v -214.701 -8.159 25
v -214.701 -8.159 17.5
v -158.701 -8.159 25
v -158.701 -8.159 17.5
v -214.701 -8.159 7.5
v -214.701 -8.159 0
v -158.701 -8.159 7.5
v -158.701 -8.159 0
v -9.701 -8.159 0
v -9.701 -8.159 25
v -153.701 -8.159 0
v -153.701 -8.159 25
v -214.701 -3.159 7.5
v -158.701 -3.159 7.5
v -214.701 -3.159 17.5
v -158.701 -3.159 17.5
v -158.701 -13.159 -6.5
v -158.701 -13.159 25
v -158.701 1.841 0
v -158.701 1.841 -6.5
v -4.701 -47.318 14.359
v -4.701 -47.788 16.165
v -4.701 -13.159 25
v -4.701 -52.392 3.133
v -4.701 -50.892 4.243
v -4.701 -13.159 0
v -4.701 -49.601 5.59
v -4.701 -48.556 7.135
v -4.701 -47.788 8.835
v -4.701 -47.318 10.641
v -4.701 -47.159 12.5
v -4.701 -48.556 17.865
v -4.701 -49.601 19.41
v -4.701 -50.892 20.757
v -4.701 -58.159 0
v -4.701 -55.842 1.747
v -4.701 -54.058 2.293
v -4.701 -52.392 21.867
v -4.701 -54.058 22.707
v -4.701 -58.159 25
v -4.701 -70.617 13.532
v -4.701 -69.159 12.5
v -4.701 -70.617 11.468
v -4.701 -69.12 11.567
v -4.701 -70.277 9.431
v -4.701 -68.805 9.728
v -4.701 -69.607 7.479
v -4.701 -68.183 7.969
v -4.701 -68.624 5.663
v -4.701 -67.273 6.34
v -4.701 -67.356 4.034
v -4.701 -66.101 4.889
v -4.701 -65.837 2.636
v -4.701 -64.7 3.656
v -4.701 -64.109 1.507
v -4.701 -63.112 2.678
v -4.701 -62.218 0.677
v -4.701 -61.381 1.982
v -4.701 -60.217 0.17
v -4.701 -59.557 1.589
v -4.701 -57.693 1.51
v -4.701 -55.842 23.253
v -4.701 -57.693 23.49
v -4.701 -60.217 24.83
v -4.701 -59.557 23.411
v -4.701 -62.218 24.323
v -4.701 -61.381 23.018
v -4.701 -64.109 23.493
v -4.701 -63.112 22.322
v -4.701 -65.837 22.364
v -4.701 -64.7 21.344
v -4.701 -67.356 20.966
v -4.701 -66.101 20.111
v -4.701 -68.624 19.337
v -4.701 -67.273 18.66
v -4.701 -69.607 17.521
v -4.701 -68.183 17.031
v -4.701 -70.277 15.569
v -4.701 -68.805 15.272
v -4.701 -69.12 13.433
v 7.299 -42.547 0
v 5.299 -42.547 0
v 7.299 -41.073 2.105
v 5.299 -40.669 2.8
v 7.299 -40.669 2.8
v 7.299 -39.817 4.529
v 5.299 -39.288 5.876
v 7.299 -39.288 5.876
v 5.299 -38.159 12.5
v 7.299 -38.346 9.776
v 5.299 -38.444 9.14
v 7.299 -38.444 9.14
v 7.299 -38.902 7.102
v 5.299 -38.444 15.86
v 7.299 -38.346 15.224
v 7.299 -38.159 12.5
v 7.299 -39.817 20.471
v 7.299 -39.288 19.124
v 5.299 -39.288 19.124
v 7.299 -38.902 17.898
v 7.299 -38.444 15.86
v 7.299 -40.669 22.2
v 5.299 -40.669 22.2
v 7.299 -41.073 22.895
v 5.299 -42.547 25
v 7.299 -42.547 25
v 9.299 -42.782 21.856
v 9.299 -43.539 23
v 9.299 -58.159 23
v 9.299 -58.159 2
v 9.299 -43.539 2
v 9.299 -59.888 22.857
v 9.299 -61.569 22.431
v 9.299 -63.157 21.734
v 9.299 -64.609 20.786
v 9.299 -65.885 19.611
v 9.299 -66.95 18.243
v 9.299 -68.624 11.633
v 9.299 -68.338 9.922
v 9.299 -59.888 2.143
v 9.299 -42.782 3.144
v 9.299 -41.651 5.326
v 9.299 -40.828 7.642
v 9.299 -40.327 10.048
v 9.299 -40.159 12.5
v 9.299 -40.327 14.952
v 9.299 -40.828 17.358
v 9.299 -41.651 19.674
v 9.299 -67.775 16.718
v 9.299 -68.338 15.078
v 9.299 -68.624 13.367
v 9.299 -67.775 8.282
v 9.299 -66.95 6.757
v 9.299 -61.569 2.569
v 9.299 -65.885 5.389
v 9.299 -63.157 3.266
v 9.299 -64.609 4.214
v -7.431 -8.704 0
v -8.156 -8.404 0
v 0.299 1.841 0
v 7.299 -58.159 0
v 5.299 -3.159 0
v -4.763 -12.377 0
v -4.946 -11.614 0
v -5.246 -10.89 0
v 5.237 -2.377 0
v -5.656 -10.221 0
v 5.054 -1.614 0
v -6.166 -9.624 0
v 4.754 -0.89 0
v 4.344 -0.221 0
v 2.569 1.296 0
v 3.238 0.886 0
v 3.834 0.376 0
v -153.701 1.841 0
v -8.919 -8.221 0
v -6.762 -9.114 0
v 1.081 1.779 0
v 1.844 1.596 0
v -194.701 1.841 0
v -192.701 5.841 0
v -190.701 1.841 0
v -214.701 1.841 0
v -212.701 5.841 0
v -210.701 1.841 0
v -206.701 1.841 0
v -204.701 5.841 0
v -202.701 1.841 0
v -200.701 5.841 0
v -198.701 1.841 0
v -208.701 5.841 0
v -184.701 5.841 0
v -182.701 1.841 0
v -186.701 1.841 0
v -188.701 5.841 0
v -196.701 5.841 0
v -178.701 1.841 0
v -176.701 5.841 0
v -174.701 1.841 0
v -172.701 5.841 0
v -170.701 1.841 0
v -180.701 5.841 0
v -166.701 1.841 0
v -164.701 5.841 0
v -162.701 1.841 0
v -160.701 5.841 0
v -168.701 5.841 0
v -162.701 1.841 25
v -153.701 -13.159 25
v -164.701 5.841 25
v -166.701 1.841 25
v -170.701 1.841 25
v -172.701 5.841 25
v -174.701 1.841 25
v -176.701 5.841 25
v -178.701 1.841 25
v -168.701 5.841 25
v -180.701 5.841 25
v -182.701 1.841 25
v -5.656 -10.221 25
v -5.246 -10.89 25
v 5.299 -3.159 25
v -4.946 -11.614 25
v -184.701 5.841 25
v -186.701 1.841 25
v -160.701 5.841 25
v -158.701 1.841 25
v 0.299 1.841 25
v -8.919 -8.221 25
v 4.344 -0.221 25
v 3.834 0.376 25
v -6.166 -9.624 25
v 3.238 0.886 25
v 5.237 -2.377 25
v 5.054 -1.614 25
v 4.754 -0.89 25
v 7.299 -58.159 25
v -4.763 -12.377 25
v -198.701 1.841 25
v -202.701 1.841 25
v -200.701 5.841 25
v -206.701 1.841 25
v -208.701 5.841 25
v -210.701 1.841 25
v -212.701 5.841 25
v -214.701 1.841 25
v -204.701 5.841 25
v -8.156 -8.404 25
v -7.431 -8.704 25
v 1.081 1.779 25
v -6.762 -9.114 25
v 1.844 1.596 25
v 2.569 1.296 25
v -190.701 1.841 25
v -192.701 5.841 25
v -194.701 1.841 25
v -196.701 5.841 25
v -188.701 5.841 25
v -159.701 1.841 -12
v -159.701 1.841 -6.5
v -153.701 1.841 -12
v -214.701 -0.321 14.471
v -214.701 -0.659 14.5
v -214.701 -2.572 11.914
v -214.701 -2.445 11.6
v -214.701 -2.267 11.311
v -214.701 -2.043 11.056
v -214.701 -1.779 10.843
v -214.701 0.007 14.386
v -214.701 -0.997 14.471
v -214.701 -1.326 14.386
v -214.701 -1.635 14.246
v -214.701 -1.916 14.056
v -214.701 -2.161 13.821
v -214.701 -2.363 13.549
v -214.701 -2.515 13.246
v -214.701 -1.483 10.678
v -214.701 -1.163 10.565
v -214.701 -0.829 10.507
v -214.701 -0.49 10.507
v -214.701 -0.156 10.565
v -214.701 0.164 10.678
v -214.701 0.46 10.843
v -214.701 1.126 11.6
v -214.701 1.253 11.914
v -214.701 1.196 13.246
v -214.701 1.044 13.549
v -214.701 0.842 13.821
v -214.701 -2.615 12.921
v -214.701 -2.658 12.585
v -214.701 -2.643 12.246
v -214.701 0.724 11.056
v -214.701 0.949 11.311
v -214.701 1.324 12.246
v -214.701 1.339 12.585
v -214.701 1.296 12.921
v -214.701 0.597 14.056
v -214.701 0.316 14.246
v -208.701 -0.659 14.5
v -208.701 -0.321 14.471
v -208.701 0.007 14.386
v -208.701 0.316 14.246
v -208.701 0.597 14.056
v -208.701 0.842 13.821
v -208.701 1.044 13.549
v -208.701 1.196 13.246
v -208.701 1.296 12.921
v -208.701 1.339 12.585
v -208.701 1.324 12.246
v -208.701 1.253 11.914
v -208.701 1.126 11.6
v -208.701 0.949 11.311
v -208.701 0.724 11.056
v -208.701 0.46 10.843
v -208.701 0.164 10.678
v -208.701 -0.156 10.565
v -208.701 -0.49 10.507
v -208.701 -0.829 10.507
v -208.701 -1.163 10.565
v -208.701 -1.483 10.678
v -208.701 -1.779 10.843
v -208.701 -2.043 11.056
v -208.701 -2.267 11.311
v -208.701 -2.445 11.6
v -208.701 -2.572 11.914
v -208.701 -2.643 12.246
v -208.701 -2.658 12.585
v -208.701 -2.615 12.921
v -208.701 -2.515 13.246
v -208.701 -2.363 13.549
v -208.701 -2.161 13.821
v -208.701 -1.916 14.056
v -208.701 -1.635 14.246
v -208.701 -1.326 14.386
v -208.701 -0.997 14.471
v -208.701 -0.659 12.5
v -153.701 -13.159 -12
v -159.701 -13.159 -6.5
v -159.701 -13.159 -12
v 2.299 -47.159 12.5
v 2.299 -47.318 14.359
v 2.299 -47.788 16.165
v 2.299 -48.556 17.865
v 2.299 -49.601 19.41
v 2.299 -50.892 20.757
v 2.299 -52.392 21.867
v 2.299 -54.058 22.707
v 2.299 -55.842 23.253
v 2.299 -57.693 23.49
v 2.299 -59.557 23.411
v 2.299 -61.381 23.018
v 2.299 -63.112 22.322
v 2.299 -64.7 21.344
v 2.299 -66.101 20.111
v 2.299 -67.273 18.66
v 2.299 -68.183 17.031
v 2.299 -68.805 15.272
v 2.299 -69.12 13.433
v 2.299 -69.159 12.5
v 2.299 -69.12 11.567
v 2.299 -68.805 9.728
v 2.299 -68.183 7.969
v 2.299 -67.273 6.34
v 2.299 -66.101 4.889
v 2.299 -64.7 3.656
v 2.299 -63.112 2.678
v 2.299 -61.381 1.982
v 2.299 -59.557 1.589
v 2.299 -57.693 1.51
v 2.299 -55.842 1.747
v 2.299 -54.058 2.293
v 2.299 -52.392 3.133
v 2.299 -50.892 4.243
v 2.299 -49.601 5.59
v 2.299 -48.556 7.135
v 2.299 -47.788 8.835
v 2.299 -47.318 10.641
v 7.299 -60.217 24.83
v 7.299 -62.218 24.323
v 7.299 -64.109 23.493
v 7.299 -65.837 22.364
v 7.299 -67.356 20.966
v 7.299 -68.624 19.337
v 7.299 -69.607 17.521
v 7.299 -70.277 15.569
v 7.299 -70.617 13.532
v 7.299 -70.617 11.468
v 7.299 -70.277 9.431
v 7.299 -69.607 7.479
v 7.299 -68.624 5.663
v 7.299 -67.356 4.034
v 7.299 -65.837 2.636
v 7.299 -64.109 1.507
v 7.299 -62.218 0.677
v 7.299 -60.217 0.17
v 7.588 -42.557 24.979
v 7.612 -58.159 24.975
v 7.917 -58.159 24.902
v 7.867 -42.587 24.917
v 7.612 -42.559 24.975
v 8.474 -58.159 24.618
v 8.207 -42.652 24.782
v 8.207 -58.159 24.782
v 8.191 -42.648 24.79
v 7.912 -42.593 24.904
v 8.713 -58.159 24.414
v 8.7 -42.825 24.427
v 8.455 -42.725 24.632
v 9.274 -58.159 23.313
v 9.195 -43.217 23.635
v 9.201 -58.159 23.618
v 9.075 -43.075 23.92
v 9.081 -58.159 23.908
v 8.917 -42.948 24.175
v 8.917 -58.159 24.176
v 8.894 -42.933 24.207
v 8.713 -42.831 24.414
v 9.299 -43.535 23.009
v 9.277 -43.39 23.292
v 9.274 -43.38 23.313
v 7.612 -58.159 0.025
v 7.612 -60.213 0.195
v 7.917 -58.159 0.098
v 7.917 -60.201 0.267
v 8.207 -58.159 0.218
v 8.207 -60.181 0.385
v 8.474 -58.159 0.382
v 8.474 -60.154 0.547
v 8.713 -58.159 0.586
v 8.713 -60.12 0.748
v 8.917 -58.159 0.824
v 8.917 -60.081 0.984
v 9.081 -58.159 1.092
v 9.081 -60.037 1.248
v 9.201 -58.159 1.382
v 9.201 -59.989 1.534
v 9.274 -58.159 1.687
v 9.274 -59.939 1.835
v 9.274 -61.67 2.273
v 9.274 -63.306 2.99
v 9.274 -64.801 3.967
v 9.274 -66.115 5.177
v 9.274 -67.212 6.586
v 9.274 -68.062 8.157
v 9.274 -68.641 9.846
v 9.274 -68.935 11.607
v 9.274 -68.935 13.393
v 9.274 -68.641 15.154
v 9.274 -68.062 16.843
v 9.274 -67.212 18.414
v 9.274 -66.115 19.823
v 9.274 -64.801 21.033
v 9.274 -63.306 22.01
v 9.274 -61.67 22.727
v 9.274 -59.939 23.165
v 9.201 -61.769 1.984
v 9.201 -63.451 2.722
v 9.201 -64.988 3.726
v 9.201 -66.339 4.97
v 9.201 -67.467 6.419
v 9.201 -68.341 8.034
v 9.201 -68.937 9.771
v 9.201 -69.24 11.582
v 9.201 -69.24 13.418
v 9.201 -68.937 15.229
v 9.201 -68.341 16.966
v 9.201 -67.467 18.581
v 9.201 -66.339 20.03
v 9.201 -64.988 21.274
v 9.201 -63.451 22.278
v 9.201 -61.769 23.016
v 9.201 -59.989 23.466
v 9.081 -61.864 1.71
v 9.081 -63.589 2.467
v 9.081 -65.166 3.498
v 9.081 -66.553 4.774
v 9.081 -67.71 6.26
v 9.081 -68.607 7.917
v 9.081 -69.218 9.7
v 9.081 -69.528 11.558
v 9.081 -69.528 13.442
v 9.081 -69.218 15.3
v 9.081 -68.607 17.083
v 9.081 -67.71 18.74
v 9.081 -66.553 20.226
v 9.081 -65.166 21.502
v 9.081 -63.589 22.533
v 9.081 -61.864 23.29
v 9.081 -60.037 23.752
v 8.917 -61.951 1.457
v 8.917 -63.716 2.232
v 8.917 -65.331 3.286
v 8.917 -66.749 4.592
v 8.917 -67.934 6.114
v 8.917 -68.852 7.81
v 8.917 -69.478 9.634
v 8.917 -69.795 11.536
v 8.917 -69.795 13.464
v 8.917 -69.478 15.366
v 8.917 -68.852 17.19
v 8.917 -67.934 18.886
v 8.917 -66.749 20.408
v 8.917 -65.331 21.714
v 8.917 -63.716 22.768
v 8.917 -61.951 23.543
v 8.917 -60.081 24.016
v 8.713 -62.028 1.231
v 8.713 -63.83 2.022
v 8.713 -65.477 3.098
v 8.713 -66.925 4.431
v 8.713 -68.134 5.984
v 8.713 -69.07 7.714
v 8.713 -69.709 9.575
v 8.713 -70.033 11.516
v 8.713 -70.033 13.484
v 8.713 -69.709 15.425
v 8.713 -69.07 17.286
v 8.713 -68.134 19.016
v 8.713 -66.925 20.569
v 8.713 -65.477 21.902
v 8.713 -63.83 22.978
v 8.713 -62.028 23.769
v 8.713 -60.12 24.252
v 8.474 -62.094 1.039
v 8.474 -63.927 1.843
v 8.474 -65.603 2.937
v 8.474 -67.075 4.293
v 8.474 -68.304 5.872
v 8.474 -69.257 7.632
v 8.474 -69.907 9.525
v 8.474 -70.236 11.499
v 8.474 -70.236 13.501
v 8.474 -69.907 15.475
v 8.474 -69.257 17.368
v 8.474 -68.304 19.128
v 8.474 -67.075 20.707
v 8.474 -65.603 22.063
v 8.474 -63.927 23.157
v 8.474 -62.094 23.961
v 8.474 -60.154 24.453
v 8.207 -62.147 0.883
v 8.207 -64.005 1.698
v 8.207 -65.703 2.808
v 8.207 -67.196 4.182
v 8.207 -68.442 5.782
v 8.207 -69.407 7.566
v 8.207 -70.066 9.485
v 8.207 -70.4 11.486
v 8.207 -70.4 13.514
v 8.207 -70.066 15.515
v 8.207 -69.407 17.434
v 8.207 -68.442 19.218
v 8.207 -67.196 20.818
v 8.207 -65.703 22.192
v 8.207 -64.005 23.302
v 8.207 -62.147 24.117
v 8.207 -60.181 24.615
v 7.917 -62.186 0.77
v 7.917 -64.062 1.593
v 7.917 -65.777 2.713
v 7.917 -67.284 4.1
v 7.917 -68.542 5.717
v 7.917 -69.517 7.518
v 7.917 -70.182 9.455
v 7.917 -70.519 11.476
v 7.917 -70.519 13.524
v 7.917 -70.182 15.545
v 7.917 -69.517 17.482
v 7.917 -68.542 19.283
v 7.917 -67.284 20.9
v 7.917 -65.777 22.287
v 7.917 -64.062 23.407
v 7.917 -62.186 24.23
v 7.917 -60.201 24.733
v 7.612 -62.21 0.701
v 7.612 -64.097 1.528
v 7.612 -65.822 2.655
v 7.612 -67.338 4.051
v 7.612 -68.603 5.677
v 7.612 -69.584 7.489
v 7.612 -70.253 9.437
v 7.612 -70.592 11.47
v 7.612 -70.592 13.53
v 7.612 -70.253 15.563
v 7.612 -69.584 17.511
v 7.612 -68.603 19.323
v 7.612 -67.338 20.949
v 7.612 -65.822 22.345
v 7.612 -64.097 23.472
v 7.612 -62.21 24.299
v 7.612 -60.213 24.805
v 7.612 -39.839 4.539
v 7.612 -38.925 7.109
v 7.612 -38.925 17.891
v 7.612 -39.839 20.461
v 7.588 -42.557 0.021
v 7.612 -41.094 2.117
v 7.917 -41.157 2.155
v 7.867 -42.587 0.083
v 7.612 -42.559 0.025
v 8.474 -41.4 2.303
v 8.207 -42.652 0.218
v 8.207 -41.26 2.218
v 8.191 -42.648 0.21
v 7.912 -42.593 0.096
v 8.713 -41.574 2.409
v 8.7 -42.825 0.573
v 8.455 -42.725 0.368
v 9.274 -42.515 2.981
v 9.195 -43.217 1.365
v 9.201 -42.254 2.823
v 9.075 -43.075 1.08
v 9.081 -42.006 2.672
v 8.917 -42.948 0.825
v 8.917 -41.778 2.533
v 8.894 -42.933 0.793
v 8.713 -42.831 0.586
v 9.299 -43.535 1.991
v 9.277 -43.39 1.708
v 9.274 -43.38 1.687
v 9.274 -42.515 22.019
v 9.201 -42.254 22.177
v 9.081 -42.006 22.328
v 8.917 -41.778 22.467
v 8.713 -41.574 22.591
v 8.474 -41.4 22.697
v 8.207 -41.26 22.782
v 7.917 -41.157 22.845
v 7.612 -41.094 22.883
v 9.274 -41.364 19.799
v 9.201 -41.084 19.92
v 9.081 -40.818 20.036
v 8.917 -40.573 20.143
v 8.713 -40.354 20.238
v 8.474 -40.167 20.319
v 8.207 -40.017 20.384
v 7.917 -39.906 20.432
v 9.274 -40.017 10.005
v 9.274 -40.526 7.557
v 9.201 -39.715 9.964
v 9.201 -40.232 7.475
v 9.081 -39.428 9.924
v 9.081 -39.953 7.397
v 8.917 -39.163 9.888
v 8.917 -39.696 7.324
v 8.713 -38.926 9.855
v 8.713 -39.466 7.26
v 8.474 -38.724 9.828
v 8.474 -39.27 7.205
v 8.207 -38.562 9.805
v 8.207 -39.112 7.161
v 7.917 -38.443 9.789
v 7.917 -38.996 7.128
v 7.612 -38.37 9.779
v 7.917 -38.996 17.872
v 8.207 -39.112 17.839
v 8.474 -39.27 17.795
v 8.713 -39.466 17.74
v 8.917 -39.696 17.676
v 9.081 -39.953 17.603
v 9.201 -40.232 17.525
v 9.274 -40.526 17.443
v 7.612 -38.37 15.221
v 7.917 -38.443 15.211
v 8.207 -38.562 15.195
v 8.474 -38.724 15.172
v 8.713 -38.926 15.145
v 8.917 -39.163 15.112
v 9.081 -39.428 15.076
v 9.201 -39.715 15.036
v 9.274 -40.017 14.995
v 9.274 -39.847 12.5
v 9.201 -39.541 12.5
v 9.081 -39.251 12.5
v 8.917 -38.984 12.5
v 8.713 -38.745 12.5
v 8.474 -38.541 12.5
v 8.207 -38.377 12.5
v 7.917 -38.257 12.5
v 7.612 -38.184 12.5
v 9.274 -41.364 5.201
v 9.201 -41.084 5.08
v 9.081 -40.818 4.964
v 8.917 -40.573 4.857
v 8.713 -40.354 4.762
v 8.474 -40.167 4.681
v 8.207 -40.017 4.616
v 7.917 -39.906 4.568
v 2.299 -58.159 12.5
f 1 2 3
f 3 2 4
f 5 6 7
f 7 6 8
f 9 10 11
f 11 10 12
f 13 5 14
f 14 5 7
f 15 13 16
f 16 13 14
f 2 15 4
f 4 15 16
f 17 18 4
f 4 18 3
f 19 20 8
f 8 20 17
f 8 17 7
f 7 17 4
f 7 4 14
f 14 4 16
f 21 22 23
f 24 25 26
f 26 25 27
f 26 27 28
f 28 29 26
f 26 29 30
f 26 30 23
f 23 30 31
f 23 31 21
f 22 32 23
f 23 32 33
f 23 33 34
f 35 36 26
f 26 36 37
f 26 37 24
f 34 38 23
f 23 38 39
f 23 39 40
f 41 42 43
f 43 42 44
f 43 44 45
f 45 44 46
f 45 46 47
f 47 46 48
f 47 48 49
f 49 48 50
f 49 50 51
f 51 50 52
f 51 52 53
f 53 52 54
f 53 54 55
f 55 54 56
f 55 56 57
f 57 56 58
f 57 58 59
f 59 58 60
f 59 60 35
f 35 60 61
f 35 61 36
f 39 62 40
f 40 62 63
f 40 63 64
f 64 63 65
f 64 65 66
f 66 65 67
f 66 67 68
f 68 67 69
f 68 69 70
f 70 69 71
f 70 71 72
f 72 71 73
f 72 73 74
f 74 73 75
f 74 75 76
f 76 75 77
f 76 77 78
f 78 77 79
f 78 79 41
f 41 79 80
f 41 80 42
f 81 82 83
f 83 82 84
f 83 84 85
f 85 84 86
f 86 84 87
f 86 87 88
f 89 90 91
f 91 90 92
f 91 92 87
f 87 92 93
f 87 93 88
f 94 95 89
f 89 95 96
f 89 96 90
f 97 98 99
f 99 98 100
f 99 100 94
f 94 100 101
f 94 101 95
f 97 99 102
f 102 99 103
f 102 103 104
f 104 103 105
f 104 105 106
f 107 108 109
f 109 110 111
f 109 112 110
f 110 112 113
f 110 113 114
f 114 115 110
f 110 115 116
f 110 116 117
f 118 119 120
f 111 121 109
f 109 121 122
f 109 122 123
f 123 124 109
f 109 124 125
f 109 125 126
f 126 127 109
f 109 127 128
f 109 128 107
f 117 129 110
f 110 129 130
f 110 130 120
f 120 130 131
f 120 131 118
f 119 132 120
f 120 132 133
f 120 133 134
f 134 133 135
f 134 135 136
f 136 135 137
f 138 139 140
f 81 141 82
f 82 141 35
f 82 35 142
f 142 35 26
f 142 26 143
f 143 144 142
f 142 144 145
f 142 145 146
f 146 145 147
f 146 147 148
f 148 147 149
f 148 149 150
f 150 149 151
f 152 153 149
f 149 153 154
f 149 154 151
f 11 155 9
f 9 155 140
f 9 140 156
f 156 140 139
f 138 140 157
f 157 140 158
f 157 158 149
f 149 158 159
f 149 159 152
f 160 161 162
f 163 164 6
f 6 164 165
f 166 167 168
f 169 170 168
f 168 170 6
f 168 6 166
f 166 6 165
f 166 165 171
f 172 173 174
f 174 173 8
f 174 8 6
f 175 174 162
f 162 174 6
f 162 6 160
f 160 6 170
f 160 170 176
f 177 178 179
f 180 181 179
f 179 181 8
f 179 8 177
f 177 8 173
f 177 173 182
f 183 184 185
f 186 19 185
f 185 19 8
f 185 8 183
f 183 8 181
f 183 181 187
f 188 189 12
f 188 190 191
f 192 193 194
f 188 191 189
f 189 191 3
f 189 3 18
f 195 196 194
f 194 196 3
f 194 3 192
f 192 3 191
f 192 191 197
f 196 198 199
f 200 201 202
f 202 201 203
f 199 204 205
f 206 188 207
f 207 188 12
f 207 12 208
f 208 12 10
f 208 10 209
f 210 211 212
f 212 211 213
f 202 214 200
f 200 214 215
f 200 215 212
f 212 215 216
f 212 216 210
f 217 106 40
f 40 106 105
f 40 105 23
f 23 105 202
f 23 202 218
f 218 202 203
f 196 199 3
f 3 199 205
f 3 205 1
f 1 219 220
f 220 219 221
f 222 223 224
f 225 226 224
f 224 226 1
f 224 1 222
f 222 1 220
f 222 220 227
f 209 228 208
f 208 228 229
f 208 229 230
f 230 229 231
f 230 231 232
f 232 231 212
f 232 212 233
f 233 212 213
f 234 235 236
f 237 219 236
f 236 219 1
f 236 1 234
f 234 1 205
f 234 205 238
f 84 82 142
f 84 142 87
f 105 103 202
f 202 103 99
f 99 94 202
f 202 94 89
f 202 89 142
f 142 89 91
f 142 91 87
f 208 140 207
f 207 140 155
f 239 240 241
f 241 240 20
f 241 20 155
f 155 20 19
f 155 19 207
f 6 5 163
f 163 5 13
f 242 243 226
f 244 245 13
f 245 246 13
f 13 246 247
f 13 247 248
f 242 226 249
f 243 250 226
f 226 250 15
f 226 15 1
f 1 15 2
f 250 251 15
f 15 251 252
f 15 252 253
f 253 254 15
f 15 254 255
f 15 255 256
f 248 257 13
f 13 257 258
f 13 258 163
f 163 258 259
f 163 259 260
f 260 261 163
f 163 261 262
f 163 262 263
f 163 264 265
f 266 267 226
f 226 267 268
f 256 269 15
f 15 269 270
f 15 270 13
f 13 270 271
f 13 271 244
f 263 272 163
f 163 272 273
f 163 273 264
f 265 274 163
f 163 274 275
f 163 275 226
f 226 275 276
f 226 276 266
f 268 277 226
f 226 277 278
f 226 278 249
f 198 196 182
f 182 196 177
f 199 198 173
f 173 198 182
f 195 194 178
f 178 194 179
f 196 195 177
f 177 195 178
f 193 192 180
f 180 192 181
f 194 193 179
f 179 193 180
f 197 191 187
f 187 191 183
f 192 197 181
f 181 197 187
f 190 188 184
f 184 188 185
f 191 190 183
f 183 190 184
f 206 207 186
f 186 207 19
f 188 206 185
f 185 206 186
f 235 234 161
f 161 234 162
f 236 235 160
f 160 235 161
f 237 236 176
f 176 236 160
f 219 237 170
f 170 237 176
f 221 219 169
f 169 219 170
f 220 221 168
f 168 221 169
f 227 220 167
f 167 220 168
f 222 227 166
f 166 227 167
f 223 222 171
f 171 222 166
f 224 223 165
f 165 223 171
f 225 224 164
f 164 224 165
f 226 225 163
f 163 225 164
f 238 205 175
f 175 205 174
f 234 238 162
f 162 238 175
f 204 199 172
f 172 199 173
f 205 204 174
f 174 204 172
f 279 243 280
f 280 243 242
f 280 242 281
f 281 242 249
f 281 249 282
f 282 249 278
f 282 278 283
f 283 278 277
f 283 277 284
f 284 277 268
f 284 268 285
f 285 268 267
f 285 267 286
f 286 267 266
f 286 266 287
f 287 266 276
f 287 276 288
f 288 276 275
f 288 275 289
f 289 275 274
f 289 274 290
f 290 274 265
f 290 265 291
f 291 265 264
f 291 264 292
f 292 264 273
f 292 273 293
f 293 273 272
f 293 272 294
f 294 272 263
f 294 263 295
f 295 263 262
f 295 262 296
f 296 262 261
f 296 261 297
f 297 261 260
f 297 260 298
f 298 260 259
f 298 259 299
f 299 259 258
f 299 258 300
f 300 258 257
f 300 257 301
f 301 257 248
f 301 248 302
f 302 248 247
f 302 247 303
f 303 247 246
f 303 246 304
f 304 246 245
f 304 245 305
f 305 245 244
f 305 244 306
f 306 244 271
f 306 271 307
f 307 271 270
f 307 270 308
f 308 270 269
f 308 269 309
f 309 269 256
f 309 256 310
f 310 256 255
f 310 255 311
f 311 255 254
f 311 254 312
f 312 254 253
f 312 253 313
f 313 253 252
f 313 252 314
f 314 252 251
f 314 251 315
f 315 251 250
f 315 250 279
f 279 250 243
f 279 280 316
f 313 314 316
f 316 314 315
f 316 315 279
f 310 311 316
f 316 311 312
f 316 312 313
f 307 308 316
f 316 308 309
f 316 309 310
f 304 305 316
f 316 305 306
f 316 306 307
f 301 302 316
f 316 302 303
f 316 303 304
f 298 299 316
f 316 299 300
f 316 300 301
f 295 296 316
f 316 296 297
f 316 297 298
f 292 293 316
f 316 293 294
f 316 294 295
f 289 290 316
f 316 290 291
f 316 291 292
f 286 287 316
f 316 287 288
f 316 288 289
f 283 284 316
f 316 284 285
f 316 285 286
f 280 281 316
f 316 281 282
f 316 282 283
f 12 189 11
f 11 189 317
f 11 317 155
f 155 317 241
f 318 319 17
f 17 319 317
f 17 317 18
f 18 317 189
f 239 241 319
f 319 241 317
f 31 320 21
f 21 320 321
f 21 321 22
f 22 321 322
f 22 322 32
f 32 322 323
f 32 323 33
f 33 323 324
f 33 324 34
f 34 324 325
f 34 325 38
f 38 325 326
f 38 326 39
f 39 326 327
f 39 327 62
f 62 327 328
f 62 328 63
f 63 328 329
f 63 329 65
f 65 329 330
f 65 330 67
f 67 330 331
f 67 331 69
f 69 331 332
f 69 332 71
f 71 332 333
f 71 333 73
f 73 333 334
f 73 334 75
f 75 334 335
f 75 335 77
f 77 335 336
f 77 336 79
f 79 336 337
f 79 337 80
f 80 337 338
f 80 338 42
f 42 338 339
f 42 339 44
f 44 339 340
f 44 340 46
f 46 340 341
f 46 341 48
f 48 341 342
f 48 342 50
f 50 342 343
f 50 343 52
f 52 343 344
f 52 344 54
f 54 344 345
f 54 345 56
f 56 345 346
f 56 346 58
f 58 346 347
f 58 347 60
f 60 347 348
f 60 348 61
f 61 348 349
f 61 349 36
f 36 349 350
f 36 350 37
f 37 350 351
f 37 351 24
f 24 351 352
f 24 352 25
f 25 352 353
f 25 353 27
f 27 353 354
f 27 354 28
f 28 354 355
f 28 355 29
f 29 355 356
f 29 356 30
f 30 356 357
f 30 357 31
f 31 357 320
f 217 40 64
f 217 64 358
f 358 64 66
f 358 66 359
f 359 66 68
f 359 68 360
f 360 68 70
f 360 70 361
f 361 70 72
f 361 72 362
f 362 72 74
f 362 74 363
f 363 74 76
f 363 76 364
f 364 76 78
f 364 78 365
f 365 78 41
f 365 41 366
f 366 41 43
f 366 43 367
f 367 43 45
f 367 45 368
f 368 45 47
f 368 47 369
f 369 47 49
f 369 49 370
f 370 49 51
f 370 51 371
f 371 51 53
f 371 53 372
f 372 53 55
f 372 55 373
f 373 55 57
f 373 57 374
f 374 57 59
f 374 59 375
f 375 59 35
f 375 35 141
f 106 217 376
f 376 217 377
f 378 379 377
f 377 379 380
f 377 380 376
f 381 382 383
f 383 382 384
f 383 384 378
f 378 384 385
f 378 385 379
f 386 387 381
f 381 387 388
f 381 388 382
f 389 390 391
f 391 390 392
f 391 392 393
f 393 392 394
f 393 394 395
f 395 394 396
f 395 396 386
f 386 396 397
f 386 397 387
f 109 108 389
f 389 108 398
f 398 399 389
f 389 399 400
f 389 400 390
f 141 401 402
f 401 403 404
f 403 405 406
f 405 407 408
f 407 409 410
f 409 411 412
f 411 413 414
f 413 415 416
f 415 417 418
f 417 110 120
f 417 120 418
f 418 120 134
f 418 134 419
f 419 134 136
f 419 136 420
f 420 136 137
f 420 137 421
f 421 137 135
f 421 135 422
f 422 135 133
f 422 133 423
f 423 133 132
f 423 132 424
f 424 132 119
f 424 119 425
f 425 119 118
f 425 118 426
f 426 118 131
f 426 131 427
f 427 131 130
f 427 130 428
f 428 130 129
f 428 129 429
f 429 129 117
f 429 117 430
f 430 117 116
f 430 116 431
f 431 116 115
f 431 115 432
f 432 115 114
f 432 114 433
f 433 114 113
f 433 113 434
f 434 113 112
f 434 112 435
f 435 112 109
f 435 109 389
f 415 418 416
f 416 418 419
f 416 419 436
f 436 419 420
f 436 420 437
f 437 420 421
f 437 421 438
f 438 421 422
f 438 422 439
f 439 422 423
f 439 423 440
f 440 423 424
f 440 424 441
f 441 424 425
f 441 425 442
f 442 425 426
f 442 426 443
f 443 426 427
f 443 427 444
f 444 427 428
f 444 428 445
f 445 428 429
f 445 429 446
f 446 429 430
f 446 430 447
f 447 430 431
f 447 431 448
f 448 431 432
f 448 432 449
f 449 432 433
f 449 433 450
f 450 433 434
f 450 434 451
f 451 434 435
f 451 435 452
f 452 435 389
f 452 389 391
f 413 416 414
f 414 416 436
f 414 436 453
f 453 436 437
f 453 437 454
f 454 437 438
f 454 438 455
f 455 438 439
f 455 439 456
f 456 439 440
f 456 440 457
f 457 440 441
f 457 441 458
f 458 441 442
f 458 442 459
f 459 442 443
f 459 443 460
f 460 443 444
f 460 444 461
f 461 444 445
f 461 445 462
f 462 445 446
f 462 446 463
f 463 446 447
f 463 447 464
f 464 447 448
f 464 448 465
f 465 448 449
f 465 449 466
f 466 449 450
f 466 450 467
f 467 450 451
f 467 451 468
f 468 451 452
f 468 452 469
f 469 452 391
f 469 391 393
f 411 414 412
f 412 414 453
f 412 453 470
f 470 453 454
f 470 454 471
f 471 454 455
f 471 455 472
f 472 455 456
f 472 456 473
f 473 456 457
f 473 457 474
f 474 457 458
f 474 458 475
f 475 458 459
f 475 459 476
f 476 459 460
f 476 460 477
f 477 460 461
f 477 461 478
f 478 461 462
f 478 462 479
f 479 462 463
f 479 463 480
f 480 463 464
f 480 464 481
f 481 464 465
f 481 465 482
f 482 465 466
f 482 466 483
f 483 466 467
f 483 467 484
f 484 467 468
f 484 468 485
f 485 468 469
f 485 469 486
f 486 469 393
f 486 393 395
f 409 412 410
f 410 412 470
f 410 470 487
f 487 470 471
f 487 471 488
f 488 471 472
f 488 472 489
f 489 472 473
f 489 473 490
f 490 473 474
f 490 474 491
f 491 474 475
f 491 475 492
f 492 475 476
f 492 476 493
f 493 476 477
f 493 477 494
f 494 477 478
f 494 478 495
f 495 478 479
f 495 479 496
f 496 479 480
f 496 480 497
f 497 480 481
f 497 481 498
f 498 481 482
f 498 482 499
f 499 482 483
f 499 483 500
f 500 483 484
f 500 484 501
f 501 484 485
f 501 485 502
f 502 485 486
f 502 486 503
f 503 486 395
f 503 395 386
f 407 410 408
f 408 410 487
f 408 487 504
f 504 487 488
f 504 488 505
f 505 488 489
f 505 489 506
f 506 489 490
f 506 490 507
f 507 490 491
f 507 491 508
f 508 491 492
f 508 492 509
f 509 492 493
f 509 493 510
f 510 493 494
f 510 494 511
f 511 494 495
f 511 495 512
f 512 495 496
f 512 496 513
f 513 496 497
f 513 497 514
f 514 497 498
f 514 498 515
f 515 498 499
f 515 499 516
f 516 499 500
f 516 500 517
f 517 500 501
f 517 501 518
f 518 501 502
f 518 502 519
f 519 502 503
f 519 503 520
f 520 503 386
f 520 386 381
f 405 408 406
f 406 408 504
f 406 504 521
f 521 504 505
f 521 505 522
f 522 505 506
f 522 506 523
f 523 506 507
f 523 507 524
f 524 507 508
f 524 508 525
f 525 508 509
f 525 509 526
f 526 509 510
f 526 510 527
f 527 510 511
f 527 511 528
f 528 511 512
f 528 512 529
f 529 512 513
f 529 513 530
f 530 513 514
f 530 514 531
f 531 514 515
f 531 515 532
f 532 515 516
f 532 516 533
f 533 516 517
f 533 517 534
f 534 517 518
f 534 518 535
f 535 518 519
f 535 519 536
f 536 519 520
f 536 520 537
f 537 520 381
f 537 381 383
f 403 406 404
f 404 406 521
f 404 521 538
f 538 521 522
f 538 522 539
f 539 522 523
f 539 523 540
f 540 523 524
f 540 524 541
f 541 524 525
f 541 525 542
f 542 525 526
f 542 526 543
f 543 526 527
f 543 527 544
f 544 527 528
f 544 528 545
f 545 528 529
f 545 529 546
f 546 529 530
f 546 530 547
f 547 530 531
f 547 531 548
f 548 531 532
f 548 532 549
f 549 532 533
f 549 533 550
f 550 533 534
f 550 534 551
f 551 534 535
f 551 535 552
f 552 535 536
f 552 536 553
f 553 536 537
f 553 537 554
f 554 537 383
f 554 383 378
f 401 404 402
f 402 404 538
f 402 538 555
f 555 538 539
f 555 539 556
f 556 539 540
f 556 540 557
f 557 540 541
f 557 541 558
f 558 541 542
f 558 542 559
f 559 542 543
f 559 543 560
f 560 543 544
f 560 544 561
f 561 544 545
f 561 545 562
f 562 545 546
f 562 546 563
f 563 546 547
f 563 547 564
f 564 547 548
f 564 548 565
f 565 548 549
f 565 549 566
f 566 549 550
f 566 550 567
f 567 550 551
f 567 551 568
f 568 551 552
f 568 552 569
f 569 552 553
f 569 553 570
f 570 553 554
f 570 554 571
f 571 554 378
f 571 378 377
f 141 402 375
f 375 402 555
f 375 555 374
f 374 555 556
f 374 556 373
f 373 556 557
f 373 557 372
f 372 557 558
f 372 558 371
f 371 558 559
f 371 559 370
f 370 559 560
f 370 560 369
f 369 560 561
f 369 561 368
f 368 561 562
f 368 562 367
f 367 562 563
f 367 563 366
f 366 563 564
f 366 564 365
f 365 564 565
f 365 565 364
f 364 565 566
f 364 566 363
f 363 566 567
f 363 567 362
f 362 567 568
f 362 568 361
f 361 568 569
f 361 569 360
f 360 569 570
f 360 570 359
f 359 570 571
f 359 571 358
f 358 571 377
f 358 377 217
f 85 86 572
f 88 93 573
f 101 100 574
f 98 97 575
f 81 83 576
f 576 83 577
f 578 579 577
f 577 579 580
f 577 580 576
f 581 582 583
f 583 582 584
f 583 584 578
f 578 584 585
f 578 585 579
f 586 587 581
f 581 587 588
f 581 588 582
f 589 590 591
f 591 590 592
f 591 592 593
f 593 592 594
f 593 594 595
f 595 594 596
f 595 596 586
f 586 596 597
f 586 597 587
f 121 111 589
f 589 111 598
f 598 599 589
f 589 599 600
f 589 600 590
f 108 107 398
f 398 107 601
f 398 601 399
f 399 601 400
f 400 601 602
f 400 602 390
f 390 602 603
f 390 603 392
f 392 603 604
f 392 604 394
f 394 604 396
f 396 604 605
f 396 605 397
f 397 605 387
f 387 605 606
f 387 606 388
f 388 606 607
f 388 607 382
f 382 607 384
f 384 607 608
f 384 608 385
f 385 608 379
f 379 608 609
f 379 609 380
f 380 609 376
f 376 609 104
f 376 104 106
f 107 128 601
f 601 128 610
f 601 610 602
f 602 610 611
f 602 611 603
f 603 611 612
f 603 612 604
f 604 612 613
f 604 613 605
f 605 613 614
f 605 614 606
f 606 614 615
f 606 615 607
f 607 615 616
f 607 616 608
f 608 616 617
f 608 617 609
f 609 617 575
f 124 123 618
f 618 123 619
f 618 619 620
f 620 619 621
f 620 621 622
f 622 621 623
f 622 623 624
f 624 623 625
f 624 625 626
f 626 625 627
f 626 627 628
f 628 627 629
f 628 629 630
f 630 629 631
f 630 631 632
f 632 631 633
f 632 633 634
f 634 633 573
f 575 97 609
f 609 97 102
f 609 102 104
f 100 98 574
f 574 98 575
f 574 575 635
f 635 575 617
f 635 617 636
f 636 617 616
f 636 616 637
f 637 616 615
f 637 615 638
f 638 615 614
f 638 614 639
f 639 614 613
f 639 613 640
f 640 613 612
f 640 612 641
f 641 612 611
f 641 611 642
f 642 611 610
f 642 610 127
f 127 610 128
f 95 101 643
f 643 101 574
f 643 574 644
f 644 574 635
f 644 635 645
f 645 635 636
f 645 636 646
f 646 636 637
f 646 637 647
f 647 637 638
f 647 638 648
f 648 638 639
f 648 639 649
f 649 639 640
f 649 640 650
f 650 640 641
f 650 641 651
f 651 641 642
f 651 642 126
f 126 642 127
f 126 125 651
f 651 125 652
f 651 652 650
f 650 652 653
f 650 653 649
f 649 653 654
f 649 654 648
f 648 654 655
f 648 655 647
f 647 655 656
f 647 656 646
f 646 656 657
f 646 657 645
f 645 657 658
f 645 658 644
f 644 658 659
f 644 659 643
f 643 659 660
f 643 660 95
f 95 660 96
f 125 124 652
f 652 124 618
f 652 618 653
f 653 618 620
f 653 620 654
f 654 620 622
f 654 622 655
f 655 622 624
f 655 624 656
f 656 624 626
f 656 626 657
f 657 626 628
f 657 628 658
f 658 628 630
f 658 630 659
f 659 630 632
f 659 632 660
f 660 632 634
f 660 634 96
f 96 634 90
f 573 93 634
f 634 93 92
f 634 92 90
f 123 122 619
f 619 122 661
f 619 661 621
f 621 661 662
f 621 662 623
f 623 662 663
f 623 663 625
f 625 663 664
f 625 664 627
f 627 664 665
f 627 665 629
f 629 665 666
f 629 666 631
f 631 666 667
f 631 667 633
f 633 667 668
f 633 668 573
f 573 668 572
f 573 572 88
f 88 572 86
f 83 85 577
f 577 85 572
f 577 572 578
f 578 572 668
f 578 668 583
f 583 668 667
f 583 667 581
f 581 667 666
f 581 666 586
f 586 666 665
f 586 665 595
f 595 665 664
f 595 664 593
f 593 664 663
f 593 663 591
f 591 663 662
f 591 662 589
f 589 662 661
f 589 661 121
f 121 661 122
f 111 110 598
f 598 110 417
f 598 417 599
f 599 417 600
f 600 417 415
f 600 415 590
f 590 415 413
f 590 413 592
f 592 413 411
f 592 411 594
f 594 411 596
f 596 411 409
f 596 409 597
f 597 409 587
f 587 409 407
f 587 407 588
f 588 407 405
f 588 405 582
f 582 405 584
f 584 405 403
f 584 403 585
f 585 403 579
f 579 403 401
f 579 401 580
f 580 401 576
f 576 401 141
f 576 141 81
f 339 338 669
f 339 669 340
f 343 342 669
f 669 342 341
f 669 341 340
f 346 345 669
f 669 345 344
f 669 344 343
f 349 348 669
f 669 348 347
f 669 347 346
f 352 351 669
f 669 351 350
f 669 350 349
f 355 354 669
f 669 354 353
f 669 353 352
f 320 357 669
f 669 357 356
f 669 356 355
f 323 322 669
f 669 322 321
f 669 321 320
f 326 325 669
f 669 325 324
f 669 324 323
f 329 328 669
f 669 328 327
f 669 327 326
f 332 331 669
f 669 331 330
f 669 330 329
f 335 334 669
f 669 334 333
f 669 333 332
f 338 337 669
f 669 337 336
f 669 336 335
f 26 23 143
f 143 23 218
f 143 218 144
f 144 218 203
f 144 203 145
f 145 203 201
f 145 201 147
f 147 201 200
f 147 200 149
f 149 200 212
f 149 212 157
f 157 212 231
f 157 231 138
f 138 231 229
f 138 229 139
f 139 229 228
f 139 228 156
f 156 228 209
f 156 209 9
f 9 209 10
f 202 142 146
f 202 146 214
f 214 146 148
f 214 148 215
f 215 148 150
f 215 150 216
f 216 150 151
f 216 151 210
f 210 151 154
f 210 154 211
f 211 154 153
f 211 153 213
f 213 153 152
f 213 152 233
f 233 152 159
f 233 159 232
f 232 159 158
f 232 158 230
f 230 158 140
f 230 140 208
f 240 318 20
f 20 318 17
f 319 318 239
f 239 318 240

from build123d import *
from build123d.topology import SkipClean

# Parameters (mm, degrees)
BOSS_EXTRU_1_DEPTH      = 25
BOSS_EXTRU_2_DEPTH      = 12.5
ESQUISSE3_R             = 20
ESQUISSE3_R_2           = 15
BOSS_EXTRU_3_DEPTH      = 10
ENL_V_MAT_EXTRU_1_DEPTH = 227.418066155
ESQUISSE5_W             = 10
ESQUISSE5_H             = 5
ENL_V_MAT_EXTRU_2_DEPTH = 60
ESQUISSE6_R             = 20
BOSS_EXTRU_4_DEPTH      = 4
ESQUISSE8_R             = 2
ENL_V_MAT_EXTRU_4_DEPTH = 6
ESQUISSE10_W            = 5
ESQUISSE10_H            = 10
BOSS_EXTRU_5_DEPTH      = 10
BOSS_EXTRU_6_DEPTH      = 12
BOSS_EXTRU_8_START      = 10
ESQUISSE12_R            = 15
ESQUISSE12_R_2          = 11
BOSS_EXTRU_8_DEPTH      = 10
ENL_V_MAT_EXTRU_5_DEPTH = 20
CONG_1_R                = 2
BOSS_EXTRU_9_START      = 3
ESQUISSE14_R            = 11
BOSS_EXTRU_9_DEPTH      = 3
CONG_2_R                = 5
ESQUISSE16_W            = 5.5
ESQUISSE16_H            = 15
BOSS_EXTRU_10_DEPTH     = 1
ESQUISSE18_W            = 10.448813292
ESQUISSE18_H            = 10
ENL_V_MAT_EXTRU_8_DEPTH = 6
ESQUISSE19_W            = 5
ESQUISSE19_H            = 14.911099914
BOSS_EXTRU_11_DEPTH     = 25


with BuildPart() as part:
    # Esquisse1 → Boss.-Extru.1 (new body)
    with BuildSketch(Plane.XY):
        Polygon((5.298866479, 1.840607211), (-214.701133521, 1.840607211), (-214.701133521, -8.159392789), (-4.701133521, -8.159392789), (-4.701133521, -78.159392789), (5.298866479, -78.159392789), align=None)
    extrude(amount=BOSS_EXTRU_1_DEPTH)

    # Esquisse2 → Boss.-Extru.2 (add, symmetric)
    with BuildSketch(Plane.XY.offset(12.5)):
        Polygon((-160.701133521, 5.840607211), (-162.701133521, 1.840607211), (-158.701133521, 1.840607211), align=None)
        Polygon((-164.701133521, 5.840607211), (-166.701133521, 1.840607211), (-162.701133521, 1.840607211), align=None)
        Polygon((-168.701133521, 5.840607211), (-170.701133521, 1.840607211), (-166.701133521, 1.840607211), align=None)
        Polygon((-172.701133521, 5.840607211), (-174.701133521, 1.840607211), (-170.701133521, 1.840607211), align=None)
        Polygon((-176.701133521, 5.840607211), (-178.701133521, 1.840607211), (-174.701133521, 1.840607211), align=None)
        Polygon((-180.701133521, 5.840607211), (-182.701133521, 1.840607211), (-178.701133521, 1.840607211), align=None)
        Polygon((-184.701133521, 5.840607211), (-186.701133521, 1.840607211), (-182.701133521, 1.840607211), align=None)
        Polygon((-188.701133521, 5.840607211), (-190.701133521, 1.840607211), (-186.701133521, 1.840607211), align=None)
        Polygon((-192.701133521, 5.840607211), (-194.701133521, 1.840607211), (-190.701133521, 1.840607211), align=None)
        Polygon((-196.701133521, 5.840607211), (-198.701133521, 1.840607211), (-194.701133521, 1.840607211), align=None)
        Polygon((-200.701133521, 5.840607211), (-202.701133521, 1.840607211), (-198.701133521, 1.840607211), align=None)
        Polygon((-204.701133521, 5.840607211), (-206.701133521, 1.840607211), (-202.701133521, 1.840607211), align=None)
        Polygon((-208.701133521, 5.840607211), (-210.701133521, 1.840607211), (-206.701133521, 1.840607211), align=None)
        Polygon((-212.701133521, 5.840607211), (-214.701133521, 1.840607211), (-210.701133521, 1.840607211), align=None)
    extrude(amount=BOSS_EXTRU_2_DEPTH, both=True)

    # Esquisse3 → Boss.-Extru.3 (add)
    with BuildSketch(Plane.ZY.offset(4.701133521)):
        with Locations((12.5, -58.159392789)):
            Circle(ESQUISSE3_R)
        with Locations((12.5, -58.159392789)):
            Circle(ESQUISSE3_R_2, mode=Mode.SUBTRACT)
    extrude(amount=-BOSS_EXTRU_3_DEPTH)

    # Esquisse4 → Enlèv. mat.-Extru.1 (cut, through all)
    with BuildSketch(Plane.ZY.offset(4.701133521)):
        with BuildLine():
            ThreePointArc((12.5, -78.159392789), (5.876175573, -77.03066593), (0, -73.771887785))
            Line((0, -73.771887785), (0, -78.159392789))
            Line((0, -78.159392789), (12.5, -78.159392789))
        make_face()
        with BuildLine():
            Line((25, -78.159392789), (25, -73.771887785))
            ThreePointArc((25, -73.771887785), (19.123824427, -77.03066593), (12.5, -78.159392789))
            Line((12.5, -78.159392789), (25, -78.159392789))
        make_face()
        with BuildLine():
            Line((25, -66.450954765), (25, -49.867830813))
            ThreePointArc((25, -49.867830813), (12.5, -43.159392789), (0, -49.867830813))
            Line((0, -49.867830813), (0, -66.450954765))
            ThreePointArc((0, -66.450954765), (12.5, -73.159392789), (25, -66.450954765))
        make_face()
    extrude(amount=-ENL_V_MAT_EXTRU_1_DEPTH, mode=Mode.SUBTRACT)

    # Esquisse5 → Enlèv. mat.-Extru.2 (cut)
    with BuildSketch(Plane.ZY.offset(214.701133521)):
        with Locations((12.5, -5.659392789)):
            Rectangle(ESQUISSE5_W, ESQUISSE5_H)
    extrude(amount=-ENL_V_MAT_EXTRU_2_DEPTH, mode=Mode.SUBTRACT)

    # Esquisse6 → Boss.-Extru.4 (add)
    with SkipClean():  # the faces are left unmerged after this step: merging them gives an invalid solid
        with BuildSketch(Plane(origin=(5.298866479, 0, 0), x_dir=(0, 0, -1), z_dir=(1, 0, 0))):
            with Locations((-12.5, -58.159392789)):
                Circle(ESQUISSE6_R)
        extrude(amount=BOSS_EXTRU_4_DEPTH)
    add(part.part.scale(1), mode=Mode.REPLACE)  # the faces are merged on a copy

    # Esquisse8 → Enlèv. mat.-Extru.4 (cut)
    with BuildSketch(Plane.ZY.offset(214.701133521)):
        with Locations((12.5, -0.659392789)):
            Circle(ESQUISSE8_R)
    extrude(amount=-ENL_V_MAT_EXTRU_4_DEPTH, mode=Mode.SUBTRACT)

    # Esquisse10 → Boss.-Extru.5 (add)
    with BuildSketch(Plane.XY.offset(25)):
        with Locations((-156.201133521, -3.159392789)):
            Rectangle(ESQUISSE10_W, ESQUISSE10_H)
    extrude(amount=BOSS_EXTRU_5_DEPTH)

    # Esquisse11 → Boss.-Extru.6 (add)
    with SkipClean():  # the faces are left unmerged after this step: merging them gives an invalid solid
        with BuildSketch(Plane(origin=(0, 0, 0), x_dir=(-1, 0, 0), z_dir=(0, 0, -1))):
            Polygon((153.701133521, -8.159392789), (153.701133521, -13.159392789), (158.701133521, -13.159392789), (158.701133521, -8.159392789), (158.701133521, 1.840607211), (153.701133521, 1.840607211), align=None)
        extrude(amount=BOSS_EXTRU_6_DEPTH)

    # Esquisse12 → Boss.-Extru.8 (add)
    with SkipClean():  # the faces are left unmerged after this step: merging them gives an invalid solid
        with BuildSketch(Plane.ZY.offset(-5.298866479).offset(BOSS_EXTRU_8_START)):
            with Locations((12.5, -58.159392789)):
                Circle(ESQUISSE12_R)
            with Locations((12.5, -58.159392789)):
                Circle(ESQUISSE12_R_2, mode=Mode.SUBTRACT)
        extrude(amount=-BOSS_EXTRU_8_DEPTH)

    # Esquisse13 → Enlèv. mat.-Extru.5 (cut)
    with BuildSketch(Plane.ZY.offset(4.701133521)):
        with BuildLine():
            Line((0, -58.159392789), (0, -42.546897793))
            ThreePointArc((0, -42.546897793), (3.839745962, -76.187149167), (32.5, -58.159392789))
            ThreePointArc((32.5, -58.159392789), (30.527756377, -49.499138752), (25, -42.546897793))
            Line((25, -42.546897793), (25, -58.159392789))
            ThreePointArc((25, -58.159392789), (12.5, -70.659392789), (0, -58.159392789))
        make_face()
    extrude(amount=-ENL_V_MAT_EXTRU_5_DEPTH, mode=Mode.SUBTRACT)

    # Congé1
    cong_1_edges = [part.edges().sort_by_distance(p)[0] for p in [
        (9.298866479, -50.353145291, 0),
        (9.298866479, -70.659392789, 12.5),
        (9.298866479, -50.353145291, 25),
        (9.298866479, -38.159392789, 12.5),
    ]]
    fillet(cong_1_edges, radius=CONG_1_R)

    # Esquisse14 → Boss.-Extru.9 (add)
    with BuildSketch(Plane.ZY.offset(-5.298866479).offset(BOSS_EXTRU_9_START)):
        with Locations((12.5, -58.159392789)):
            Circle(ESQUISSE14_R)
    extrude(amount=-BOSS_EXTRU_9_DEPTH)

    # Congé2
    cong_2_edges = [part.edges().sort_by_distance(p)[0] for p in [
        (-4.701133521, -8.159392789, 12.5),
        (5.298866479, 1.840607211, 12.5),
    ]]
    fillet(cong_2_edges, radius=CONG_2_R)

    # Esquisse16 → Boss.-Extru.10 (add)
    with BuildSketch(Plane.ZY.offset(158.701133521)):
        with Locations((-9.25, -5.659392789)):
            Rectangle(ESQUISSE16_W, ESQUISSE16_H)
    extrude(amount=BOSS_EXTRU_10_DEPTH)

    # Esquisse18 → Enlèv. mat.-Extru.8 (cut)
    with BuildSketch(Plane.ZY.offset(158.701133521)):
        with Locations((30.224406646, -3.159392789)):
            Rectangle(ESQUISSE18_W, ESQUISSE18_H)
    extrude(amount=-ENL_V_MAT_EXTRU_8_DEPTH, mode=Mode.SUBTRACT)

    # Esquisse19 → Boss.-Extru.11 (add)
    with BuildSketch(Plane.XY):
        with Locations((-156.201133521, -5.703842832)):
            Rectangle(ESQUISSE19_W, ESQUISSE19_H)
    extrude(amount=BOSS_EXTRU_11_DEPTH)


solid = part.part
